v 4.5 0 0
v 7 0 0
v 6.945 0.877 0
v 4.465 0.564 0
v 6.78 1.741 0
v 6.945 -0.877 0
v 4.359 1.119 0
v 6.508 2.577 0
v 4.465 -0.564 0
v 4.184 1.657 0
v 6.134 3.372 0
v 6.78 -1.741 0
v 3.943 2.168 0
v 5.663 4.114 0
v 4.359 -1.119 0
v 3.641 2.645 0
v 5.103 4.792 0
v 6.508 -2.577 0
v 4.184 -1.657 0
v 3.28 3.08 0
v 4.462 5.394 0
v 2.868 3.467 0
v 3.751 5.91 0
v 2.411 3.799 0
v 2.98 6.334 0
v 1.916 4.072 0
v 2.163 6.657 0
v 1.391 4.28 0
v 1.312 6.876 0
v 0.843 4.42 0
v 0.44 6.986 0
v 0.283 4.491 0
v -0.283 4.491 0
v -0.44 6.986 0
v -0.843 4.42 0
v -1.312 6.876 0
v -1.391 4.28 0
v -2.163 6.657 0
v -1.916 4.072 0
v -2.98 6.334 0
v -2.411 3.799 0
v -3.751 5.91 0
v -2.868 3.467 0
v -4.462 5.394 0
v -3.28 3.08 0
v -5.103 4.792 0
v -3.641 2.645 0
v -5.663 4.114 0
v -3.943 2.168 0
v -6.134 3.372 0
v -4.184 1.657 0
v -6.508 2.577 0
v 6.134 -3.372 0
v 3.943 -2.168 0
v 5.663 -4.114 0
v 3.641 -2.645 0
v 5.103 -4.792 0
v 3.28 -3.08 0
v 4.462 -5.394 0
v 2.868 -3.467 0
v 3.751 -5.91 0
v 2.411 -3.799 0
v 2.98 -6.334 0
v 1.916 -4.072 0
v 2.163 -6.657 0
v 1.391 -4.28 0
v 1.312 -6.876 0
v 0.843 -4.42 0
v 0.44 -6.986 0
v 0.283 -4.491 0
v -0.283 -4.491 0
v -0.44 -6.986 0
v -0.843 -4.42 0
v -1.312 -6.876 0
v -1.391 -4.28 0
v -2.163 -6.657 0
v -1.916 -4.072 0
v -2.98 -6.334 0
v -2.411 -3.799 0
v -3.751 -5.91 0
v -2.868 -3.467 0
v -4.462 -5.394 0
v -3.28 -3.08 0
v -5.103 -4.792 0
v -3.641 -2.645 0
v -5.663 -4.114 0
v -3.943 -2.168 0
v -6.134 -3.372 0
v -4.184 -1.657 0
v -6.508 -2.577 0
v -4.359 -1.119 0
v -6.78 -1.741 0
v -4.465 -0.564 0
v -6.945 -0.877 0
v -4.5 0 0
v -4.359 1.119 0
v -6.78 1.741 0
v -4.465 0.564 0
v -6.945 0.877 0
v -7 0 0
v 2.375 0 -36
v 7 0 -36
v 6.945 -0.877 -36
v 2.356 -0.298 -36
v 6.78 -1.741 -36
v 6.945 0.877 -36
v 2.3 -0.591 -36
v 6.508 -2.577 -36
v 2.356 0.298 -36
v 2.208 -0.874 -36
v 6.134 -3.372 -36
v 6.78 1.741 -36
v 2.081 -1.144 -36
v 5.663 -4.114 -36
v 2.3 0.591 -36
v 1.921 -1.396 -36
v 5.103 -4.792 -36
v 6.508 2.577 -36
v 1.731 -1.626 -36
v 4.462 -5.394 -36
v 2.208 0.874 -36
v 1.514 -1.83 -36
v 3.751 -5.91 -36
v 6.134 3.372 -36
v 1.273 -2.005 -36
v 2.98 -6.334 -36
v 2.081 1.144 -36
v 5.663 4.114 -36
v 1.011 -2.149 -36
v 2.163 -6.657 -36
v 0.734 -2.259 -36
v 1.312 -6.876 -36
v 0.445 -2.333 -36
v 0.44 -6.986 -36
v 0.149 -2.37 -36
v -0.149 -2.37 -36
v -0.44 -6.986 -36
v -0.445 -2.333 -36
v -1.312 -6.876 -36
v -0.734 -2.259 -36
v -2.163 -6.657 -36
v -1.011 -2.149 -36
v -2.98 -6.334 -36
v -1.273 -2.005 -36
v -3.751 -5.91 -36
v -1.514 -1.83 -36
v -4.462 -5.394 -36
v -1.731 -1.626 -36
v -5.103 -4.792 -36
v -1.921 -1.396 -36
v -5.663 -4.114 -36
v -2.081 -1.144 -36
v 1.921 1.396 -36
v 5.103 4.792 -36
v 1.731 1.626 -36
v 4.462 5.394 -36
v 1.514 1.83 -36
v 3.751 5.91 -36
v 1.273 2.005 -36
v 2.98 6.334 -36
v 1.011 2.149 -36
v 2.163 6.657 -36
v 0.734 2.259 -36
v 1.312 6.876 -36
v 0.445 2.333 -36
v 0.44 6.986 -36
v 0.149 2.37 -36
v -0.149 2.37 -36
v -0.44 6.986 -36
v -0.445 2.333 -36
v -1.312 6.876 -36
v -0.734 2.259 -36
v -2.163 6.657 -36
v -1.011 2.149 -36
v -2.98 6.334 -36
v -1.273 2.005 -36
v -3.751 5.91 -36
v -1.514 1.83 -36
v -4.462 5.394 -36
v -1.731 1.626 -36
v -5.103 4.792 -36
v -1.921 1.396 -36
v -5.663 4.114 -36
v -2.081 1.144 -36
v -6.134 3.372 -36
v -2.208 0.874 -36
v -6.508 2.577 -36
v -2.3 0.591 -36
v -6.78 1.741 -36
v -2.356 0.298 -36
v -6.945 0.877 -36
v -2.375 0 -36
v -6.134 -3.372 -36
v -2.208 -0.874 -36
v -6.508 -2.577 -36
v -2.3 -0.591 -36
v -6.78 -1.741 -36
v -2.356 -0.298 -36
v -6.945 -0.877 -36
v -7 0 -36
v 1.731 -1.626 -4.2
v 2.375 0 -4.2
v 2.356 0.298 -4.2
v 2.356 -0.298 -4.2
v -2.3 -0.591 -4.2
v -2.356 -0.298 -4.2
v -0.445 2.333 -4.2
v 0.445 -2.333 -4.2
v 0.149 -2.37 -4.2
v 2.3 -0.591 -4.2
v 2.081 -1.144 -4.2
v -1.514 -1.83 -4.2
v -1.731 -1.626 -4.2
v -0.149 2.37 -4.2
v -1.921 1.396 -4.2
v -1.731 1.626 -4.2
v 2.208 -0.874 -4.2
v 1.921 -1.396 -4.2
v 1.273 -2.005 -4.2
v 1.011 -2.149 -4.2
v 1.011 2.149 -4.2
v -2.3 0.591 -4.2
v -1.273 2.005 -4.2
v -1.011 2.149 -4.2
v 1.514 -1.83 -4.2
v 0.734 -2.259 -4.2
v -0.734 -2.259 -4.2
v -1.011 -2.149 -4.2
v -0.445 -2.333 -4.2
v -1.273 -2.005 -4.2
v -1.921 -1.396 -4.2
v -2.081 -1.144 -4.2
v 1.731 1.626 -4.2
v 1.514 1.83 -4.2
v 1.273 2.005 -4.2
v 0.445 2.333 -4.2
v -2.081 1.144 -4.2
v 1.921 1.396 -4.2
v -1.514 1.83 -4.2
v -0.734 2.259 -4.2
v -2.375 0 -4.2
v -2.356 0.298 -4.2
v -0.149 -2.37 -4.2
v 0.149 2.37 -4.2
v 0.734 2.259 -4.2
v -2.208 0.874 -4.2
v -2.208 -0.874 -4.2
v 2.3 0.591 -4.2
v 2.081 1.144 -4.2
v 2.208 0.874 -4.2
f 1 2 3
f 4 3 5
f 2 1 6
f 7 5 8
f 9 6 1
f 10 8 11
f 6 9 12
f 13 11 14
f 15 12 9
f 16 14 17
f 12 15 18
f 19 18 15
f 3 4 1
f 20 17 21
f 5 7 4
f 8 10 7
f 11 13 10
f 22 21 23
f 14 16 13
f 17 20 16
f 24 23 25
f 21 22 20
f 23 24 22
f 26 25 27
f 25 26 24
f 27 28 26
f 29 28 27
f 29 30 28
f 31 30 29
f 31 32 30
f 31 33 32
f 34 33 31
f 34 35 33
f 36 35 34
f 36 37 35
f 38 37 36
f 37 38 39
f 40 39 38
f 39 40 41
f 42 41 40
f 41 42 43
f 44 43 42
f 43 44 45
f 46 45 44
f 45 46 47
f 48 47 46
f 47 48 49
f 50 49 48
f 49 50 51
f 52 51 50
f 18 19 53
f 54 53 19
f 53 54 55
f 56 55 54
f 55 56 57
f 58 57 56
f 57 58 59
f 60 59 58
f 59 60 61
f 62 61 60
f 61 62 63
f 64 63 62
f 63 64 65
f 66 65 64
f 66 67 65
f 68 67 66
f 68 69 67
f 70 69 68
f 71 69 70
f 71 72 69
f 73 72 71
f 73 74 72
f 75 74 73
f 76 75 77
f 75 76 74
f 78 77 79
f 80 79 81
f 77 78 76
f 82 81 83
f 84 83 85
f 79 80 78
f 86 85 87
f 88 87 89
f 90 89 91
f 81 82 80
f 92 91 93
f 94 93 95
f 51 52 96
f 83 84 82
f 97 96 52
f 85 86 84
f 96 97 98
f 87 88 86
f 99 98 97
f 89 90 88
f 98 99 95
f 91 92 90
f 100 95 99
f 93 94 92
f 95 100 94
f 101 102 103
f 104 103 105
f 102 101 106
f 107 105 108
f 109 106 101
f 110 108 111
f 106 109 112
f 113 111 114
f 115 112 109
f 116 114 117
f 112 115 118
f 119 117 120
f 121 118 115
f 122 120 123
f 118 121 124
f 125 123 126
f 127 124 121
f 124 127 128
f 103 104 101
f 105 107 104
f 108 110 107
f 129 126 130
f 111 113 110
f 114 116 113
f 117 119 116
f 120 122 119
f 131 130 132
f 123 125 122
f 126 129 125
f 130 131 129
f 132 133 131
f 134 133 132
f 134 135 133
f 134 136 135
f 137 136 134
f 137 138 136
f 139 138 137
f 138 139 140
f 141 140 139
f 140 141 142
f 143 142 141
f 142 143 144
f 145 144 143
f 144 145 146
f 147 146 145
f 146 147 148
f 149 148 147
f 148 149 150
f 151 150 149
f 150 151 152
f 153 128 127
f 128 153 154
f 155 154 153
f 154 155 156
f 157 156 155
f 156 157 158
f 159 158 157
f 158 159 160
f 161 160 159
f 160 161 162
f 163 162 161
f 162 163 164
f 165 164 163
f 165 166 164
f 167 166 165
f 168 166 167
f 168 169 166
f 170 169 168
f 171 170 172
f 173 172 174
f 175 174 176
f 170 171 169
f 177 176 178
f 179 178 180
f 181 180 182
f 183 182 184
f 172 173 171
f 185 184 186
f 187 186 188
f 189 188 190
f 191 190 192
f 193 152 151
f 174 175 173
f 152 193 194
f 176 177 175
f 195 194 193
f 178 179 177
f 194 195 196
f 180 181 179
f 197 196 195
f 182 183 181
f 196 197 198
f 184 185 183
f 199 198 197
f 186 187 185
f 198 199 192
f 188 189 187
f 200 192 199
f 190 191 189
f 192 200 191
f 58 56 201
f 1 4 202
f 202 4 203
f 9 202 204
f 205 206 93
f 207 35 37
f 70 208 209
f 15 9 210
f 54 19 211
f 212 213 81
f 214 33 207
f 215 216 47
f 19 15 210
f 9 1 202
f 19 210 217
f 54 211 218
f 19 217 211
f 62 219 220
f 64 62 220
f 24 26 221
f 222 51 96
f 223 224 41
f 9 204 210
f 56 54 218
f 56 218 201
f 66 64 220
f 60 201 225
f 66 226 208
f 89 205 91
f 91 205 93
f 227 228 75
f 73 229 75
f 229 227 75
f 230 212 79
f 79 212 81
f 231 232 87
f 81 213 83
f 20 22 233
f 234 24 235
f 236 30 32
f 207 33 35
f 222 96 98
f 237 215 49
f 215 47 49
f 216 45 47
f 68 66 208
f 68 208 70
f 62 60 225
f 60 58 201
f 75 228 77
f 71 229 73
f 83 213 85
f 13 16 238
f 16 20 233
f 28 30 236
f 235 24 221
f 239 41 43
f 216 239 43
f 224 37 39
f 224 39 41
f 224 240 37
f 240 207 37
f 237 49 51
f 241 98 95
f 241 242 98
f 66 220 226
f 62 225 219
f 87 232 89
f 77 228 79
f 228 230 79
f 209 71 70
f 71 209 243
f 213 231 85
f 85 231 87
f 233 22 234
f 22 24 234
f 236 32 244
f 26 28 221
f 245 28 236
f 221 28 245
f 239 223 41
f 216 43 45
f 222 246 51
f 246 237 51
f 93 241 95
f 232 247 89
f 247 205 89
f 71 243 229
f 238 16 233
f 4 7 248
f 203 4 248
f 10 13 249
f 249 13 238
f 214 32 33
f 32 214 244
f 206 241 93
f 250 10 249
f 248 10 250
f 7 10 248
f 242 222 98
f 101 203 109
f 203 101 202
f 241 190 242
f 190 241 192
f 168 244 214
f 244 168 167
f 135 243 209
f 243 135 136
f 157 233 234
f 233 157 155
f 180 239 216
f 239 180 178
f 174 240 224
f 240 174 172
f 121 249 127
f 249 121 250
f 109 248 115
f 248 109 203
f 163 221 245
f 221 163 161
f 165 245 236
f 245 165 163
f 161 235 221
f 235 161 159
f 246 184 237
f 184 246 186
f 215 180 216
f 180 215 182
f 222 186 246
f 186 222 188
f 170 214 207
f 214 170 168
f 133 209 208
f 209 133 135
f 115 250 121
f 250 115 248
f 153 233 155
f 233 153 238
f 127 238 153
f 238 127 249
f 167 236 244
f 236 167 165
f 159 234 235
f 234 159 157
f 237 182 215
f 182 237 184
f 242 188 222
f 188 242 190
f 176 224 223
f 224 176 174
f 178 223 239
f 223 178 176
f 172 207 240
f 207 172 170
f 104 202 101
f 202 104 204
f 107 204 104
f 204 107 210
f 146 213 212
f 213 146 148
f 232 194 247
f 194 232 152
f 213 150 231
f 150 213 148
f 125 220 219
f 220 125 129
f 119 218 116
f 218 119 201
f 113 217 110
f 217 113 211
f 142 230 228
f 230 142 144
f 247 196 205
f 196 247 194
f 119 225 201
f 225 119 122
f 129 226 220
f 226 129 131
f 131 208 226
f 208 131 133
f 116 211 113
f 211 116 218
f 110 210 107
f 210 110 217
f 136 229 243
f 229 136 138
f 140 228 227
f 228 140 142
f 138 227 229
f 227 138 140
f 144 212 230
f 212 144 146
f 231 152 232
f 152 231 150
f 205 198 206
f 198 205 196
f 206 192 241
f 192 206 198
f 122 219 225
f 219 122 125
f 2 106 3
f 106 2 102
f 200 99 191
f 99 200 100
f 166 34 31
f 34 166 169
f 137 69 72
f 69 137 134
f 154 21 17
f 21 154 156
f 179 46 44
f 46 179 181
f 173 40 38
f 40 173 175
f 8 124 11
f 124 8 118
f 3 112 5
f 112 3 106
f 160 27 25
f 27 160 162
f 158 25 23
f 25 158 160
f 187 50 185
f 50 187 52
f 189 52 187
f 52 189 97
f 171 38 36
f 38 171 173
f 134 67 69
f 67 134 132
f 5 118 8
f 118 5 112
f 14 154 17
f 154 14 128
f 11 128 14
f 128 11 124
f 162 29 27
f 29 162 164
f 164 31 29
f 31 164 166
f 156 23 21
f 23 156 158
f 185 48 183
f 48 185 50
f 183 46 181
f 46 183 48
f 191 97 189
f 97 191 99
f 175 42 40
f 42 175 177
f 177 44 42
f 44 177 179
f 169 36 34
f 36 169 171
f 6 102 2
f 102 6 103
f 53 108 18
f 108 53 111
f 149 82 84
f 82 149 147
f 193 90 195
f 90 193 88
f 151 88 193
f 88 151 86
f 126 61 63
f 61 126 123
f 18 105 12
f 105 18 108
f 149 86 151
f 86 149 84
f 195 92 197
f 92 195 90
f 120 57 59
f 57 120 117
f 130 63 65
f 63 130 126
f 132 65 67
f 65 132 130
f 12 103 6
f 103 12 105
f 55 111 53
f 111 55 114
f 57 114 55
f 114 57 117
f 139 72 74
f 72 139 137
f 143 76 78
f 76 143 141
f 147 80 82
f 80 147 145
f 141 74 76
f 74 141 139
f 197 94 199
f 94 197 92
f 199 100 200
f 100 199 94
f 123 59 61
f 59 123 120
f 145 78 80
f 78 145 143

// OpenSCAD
$fn = 50;


difference() {
	union() {
		translate(v = [0, 0, -36.0000000000]) {
			cylinder(h = 36, r = 7.0000000000);
		}
		cylinder(h = 0, r = 13.0000000000);
	}
	union() {
		translate(v = [0, 0, 0]) {
			rotate(a = [0, 0, 0]) {
				difference() {
					union() {
						#translate(v = [0, 0, -36.0000000000]) {
							cylinder(h = 36, r = 2.2500000000);
						}
						#translate(v = [0, 0, -4.2000000000]) {
							cylinder(h = 4.2000000000, r = 7.0000000000, r1 = 2.3750000000, r2 = 4.5000000000);
						}
						#translate(v = [0, 0, -36.0000000000]) {
							cylinder(h = 36, r = 2.3750000000);
						}
						#translate(v = [0, 0, -36.0000000000]) {
							cylinder(h = 36, r = 2.2500000000);
						}
					}
					union();
				}
			}
		}
	}
}
